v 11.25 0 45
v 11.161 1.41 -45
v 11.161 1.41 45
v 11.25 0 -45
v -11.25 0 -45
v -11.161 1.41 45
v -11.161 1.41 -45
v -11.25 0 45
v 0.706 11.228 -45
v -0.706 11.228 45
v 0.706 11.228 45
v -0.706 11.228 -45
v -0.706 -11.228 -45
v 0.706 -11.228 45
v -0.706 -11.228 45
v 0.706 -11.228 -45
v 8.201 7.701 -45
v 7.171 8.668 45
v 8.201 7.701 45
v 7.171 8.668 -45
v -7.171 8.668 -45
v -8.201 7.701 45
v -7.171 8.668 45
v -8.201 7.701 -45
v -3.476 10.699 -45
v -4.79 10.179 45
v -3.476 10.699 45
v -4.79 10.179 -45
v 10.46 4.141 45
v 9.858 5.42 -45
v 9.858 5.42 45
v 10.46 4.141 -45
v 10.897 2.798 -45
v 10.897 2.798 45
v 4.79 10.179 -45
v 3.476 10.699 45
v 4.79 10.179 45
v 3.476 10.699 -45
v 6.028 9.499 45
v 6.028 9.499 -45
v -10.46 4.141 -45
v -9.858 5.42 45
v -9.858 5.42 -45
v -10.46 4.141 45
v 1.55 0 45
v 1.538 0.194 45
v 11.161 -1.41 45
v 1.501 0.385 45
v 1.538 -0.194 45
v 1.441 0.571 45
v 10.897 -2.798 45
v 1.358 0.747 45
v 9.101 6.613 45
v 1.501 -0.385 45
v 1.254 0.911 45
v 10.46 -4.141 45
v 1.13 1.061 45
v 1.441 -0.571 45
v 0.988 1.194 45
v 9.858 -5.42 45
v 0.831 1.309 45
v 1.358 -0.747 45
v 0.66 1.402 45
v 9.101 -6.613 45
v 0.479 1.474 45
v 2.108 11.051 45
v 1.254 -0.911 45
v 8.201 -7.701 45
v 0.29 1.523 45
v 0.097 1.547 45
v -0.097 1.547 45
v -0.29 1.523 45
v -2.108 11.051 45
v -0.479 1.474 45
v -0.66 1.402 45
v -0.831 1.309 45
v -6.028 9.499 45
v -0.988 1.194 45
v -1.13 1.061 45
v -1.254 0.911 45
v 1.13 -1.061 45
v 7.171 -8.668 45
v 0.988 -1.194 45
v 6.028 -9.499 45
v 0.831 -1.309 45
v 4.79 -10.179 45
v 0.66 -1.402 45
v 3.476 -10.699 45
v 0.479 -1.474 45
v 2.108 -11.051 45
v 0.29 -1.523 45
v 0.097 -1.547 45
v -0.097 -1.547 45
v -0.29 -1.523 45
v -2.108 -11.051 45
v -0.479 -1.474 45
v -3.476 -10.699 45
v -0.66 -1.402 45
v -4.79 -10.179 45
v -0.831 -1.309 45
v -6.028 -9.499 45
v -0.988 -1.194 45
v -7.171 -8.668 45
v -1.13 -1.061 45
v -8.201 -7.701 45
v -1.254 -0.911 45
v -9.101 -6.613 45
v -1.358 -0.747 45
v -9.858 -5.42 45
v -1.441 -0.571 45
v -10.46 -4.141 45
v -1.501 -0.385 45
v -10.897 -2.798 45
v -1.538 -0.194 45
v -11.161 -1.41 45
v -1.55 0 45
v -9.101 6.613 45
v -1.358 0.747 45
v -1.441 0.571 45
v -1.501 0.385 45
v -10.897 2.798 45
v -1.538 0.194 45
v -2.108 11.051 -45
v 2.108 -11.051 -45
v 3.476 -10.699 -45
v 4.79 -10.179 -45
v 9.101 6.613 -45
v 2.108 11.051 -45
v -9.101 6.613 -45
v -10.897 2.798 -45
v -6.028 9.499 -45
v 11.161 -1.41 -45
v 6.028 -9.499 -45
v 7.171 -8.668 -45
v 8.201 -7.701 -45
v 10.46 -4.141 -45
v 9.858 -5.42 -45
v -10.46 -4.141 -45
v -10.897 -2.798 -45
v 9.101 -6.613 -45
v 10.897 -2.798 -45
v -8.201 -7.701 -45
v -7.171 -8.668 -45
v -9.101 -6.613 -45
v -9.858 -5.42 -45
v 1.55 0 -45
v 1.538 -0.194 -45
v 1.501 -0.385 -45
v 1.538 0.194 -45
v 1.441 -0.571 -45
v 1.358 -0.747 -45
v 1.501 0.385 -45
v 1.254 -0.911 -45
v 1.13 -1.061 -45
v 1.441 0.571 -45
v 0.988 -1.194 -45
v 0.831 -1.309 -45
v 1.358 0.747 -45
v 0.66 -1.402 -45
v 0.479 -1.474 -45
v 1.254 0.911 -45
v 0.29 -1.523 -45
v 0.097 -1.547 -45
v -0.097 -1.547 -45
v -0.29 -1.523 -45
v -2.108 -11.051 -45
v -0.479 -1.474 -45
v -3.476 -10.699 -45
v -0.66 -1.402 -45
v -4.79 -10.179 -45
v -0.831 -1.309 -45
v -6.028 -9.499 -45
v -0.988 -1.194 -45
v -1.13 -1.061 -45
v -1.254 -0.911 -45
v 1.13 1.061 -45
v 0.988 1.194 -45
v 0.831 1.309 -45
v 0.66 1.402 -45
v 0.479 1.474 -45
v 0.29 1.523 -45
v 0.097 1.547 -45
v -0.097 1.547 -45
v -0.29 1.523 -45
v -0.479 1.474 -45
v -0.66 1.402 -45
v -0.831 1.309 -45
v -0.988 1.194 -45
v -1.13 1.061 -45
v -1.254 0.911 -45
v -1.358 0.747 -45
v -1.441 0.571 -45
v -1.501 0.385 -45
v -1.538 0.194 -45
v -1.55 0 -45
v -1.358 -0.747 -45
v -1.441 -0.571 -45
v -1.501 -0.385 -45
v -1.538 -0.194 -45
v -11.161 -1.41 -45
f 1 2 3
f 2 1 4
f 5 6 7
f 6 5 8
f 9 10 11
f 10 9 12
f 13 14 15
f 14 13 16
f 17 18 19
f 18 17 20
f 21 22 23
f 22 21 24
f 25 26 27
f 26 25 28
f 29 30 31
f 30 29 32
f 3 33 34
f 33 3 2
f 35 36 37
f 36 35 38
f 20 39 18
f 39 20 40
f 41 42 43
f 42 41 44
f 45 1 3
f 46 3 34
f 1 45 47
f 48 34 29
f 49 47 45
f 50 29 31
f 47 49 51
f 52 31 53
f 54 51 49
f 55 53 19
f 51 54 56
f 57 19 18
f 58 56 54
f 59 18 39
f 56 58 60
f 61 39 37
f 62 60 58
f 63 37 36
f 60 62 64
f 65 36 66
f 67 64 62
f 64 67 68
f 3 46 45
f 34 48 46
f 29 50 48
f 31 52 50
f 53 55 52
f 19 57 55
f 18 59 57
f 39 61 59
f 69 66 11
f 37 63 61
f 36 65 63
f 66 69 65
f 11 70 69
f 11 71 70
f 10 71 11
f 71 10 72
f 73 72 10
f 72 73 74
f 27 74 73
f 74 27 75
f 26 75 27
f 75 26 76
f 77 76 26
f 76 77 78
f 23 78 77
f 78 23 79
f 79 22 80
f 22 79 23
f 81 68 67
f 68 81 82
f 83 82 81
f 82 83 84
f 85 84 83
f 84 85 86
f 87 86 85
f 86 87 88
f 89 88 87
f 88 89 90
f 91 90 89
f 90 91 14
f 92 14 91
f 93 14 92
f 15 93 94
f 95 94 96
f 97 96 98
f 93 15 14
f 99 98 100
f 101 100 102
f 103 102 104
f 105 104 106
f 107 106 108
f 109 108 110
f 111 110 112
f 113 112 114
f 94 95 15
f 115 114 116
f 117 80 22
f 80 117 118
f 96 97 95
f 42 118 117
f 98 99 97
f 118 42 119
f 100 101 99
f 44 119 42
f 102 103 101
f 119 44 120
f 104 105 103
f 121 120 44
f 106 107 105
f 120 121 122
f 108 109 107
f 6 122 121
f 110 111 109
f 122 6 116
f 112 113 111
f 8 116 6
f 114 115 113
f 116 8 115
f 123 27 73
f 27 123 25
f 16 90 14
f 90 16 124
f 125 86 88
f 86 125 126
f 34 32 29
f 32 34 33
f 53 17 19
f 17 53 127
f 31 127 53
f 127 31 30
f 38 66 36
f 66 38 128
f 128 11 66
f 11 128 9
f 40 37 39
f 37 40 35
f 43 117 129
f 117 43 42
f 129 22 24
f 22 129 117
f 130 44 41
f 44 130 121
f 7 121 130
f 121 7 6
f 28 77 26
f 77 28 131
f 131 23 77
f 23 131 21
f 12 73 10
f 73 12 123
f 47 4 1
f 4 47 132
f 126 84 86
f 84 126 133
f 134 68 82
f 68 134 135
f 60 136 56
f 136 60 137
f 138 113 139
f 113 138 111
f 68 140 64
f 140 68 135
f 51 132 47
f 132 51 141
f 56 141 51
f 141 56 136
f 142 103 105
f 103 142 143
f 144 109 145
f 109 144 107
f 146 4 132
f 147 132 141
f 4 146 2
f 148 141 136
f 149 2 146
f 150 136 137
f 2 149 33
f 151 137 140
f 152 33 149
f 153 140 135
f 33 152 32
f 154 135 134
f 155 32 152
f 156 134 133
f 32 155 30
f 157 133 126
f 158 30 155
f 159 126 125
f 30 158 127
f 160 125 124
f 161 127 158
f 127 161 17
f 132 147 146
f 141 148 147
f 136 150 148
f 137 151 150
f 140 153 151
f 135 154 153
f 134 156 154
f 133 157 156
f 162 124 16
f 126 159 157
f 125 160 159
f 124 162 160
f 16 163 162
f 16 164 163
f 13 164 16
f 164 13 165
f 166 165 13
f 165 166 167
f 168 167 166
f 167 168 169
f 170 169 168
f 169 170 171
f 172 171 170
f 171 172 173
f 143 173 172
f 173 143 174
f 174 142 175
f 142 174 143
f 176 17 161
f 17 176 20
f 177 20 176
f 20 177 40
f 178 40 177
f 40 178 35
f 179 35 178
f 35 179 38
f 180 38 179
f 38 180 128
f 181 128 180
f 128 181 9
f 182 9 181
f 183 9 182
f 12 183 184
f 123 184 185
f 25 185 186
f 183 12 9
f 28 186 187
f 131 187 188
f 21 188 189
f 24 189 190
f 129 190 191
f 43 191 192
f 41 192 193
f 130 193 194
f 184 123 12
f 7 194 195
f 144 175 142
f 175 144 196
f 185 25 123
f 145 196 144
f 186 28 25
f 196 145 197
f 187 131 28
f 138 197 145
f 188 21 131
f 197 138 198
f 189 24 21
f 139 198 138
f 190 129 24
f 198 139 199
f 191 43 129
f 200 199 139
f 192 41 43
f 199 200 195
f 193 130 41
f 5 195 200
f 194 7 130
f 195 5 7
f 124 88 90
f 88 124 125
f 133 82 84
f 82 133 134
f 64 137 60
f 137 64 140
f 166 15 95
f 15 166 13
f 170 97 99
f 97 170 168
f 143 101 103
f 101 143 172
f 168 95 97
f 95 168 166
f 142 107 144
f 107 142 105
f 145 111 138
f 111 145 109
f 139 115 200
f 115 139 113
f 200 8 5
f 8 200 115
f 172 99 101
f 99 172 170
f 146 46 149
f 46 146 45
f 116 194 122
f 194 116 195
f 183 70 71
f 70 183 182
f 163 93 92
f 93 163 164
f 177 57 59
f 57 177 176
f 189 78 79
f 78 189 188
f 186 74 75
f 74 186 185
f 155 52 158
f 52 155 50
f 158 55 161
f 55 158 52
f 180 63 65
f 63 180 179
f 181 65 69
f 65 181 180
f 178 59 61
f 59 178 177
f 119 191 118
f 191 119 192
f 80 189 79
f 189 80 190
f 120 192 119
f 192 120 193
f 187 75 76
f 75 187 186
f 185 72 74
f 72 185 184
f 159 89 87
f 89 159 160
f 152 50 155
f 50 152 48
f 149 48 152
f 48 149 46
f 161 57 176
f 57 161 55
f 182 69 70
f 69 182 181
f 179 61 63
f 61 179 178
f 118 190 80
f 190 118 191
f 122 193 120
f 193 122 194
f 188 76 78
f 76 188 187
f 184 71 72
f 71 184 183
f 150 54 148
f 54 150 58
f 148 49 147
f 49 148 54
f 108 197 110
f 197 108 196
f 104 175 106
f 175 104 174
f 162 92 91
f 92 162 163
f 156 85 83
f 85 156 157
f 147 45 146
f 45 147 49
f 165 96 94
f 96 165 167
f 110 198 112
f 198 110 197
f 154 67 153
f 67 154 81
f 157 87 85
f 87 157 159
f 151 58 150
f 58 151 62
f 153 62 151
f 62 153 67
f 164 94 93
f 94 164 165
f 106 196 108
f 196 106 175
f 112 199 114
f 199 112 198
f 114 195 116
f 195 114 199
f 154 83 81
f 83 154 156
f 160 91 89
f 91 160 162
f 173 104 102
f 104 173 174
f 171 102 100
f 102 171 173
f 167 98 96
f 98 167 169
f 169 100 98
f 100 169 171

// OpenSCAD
$fn = 50;


difference() {
	union() {
		translate(v = [0, 0, -45.0000000000]) {
			cylinder(h = 90, r = 11.2500000000);
		}
	}
	union() {
		translate(v = [0, 0, -100.0000000000]) {
			cylinder(h = 200, r = 1.5500000000);
		}
	}
}
